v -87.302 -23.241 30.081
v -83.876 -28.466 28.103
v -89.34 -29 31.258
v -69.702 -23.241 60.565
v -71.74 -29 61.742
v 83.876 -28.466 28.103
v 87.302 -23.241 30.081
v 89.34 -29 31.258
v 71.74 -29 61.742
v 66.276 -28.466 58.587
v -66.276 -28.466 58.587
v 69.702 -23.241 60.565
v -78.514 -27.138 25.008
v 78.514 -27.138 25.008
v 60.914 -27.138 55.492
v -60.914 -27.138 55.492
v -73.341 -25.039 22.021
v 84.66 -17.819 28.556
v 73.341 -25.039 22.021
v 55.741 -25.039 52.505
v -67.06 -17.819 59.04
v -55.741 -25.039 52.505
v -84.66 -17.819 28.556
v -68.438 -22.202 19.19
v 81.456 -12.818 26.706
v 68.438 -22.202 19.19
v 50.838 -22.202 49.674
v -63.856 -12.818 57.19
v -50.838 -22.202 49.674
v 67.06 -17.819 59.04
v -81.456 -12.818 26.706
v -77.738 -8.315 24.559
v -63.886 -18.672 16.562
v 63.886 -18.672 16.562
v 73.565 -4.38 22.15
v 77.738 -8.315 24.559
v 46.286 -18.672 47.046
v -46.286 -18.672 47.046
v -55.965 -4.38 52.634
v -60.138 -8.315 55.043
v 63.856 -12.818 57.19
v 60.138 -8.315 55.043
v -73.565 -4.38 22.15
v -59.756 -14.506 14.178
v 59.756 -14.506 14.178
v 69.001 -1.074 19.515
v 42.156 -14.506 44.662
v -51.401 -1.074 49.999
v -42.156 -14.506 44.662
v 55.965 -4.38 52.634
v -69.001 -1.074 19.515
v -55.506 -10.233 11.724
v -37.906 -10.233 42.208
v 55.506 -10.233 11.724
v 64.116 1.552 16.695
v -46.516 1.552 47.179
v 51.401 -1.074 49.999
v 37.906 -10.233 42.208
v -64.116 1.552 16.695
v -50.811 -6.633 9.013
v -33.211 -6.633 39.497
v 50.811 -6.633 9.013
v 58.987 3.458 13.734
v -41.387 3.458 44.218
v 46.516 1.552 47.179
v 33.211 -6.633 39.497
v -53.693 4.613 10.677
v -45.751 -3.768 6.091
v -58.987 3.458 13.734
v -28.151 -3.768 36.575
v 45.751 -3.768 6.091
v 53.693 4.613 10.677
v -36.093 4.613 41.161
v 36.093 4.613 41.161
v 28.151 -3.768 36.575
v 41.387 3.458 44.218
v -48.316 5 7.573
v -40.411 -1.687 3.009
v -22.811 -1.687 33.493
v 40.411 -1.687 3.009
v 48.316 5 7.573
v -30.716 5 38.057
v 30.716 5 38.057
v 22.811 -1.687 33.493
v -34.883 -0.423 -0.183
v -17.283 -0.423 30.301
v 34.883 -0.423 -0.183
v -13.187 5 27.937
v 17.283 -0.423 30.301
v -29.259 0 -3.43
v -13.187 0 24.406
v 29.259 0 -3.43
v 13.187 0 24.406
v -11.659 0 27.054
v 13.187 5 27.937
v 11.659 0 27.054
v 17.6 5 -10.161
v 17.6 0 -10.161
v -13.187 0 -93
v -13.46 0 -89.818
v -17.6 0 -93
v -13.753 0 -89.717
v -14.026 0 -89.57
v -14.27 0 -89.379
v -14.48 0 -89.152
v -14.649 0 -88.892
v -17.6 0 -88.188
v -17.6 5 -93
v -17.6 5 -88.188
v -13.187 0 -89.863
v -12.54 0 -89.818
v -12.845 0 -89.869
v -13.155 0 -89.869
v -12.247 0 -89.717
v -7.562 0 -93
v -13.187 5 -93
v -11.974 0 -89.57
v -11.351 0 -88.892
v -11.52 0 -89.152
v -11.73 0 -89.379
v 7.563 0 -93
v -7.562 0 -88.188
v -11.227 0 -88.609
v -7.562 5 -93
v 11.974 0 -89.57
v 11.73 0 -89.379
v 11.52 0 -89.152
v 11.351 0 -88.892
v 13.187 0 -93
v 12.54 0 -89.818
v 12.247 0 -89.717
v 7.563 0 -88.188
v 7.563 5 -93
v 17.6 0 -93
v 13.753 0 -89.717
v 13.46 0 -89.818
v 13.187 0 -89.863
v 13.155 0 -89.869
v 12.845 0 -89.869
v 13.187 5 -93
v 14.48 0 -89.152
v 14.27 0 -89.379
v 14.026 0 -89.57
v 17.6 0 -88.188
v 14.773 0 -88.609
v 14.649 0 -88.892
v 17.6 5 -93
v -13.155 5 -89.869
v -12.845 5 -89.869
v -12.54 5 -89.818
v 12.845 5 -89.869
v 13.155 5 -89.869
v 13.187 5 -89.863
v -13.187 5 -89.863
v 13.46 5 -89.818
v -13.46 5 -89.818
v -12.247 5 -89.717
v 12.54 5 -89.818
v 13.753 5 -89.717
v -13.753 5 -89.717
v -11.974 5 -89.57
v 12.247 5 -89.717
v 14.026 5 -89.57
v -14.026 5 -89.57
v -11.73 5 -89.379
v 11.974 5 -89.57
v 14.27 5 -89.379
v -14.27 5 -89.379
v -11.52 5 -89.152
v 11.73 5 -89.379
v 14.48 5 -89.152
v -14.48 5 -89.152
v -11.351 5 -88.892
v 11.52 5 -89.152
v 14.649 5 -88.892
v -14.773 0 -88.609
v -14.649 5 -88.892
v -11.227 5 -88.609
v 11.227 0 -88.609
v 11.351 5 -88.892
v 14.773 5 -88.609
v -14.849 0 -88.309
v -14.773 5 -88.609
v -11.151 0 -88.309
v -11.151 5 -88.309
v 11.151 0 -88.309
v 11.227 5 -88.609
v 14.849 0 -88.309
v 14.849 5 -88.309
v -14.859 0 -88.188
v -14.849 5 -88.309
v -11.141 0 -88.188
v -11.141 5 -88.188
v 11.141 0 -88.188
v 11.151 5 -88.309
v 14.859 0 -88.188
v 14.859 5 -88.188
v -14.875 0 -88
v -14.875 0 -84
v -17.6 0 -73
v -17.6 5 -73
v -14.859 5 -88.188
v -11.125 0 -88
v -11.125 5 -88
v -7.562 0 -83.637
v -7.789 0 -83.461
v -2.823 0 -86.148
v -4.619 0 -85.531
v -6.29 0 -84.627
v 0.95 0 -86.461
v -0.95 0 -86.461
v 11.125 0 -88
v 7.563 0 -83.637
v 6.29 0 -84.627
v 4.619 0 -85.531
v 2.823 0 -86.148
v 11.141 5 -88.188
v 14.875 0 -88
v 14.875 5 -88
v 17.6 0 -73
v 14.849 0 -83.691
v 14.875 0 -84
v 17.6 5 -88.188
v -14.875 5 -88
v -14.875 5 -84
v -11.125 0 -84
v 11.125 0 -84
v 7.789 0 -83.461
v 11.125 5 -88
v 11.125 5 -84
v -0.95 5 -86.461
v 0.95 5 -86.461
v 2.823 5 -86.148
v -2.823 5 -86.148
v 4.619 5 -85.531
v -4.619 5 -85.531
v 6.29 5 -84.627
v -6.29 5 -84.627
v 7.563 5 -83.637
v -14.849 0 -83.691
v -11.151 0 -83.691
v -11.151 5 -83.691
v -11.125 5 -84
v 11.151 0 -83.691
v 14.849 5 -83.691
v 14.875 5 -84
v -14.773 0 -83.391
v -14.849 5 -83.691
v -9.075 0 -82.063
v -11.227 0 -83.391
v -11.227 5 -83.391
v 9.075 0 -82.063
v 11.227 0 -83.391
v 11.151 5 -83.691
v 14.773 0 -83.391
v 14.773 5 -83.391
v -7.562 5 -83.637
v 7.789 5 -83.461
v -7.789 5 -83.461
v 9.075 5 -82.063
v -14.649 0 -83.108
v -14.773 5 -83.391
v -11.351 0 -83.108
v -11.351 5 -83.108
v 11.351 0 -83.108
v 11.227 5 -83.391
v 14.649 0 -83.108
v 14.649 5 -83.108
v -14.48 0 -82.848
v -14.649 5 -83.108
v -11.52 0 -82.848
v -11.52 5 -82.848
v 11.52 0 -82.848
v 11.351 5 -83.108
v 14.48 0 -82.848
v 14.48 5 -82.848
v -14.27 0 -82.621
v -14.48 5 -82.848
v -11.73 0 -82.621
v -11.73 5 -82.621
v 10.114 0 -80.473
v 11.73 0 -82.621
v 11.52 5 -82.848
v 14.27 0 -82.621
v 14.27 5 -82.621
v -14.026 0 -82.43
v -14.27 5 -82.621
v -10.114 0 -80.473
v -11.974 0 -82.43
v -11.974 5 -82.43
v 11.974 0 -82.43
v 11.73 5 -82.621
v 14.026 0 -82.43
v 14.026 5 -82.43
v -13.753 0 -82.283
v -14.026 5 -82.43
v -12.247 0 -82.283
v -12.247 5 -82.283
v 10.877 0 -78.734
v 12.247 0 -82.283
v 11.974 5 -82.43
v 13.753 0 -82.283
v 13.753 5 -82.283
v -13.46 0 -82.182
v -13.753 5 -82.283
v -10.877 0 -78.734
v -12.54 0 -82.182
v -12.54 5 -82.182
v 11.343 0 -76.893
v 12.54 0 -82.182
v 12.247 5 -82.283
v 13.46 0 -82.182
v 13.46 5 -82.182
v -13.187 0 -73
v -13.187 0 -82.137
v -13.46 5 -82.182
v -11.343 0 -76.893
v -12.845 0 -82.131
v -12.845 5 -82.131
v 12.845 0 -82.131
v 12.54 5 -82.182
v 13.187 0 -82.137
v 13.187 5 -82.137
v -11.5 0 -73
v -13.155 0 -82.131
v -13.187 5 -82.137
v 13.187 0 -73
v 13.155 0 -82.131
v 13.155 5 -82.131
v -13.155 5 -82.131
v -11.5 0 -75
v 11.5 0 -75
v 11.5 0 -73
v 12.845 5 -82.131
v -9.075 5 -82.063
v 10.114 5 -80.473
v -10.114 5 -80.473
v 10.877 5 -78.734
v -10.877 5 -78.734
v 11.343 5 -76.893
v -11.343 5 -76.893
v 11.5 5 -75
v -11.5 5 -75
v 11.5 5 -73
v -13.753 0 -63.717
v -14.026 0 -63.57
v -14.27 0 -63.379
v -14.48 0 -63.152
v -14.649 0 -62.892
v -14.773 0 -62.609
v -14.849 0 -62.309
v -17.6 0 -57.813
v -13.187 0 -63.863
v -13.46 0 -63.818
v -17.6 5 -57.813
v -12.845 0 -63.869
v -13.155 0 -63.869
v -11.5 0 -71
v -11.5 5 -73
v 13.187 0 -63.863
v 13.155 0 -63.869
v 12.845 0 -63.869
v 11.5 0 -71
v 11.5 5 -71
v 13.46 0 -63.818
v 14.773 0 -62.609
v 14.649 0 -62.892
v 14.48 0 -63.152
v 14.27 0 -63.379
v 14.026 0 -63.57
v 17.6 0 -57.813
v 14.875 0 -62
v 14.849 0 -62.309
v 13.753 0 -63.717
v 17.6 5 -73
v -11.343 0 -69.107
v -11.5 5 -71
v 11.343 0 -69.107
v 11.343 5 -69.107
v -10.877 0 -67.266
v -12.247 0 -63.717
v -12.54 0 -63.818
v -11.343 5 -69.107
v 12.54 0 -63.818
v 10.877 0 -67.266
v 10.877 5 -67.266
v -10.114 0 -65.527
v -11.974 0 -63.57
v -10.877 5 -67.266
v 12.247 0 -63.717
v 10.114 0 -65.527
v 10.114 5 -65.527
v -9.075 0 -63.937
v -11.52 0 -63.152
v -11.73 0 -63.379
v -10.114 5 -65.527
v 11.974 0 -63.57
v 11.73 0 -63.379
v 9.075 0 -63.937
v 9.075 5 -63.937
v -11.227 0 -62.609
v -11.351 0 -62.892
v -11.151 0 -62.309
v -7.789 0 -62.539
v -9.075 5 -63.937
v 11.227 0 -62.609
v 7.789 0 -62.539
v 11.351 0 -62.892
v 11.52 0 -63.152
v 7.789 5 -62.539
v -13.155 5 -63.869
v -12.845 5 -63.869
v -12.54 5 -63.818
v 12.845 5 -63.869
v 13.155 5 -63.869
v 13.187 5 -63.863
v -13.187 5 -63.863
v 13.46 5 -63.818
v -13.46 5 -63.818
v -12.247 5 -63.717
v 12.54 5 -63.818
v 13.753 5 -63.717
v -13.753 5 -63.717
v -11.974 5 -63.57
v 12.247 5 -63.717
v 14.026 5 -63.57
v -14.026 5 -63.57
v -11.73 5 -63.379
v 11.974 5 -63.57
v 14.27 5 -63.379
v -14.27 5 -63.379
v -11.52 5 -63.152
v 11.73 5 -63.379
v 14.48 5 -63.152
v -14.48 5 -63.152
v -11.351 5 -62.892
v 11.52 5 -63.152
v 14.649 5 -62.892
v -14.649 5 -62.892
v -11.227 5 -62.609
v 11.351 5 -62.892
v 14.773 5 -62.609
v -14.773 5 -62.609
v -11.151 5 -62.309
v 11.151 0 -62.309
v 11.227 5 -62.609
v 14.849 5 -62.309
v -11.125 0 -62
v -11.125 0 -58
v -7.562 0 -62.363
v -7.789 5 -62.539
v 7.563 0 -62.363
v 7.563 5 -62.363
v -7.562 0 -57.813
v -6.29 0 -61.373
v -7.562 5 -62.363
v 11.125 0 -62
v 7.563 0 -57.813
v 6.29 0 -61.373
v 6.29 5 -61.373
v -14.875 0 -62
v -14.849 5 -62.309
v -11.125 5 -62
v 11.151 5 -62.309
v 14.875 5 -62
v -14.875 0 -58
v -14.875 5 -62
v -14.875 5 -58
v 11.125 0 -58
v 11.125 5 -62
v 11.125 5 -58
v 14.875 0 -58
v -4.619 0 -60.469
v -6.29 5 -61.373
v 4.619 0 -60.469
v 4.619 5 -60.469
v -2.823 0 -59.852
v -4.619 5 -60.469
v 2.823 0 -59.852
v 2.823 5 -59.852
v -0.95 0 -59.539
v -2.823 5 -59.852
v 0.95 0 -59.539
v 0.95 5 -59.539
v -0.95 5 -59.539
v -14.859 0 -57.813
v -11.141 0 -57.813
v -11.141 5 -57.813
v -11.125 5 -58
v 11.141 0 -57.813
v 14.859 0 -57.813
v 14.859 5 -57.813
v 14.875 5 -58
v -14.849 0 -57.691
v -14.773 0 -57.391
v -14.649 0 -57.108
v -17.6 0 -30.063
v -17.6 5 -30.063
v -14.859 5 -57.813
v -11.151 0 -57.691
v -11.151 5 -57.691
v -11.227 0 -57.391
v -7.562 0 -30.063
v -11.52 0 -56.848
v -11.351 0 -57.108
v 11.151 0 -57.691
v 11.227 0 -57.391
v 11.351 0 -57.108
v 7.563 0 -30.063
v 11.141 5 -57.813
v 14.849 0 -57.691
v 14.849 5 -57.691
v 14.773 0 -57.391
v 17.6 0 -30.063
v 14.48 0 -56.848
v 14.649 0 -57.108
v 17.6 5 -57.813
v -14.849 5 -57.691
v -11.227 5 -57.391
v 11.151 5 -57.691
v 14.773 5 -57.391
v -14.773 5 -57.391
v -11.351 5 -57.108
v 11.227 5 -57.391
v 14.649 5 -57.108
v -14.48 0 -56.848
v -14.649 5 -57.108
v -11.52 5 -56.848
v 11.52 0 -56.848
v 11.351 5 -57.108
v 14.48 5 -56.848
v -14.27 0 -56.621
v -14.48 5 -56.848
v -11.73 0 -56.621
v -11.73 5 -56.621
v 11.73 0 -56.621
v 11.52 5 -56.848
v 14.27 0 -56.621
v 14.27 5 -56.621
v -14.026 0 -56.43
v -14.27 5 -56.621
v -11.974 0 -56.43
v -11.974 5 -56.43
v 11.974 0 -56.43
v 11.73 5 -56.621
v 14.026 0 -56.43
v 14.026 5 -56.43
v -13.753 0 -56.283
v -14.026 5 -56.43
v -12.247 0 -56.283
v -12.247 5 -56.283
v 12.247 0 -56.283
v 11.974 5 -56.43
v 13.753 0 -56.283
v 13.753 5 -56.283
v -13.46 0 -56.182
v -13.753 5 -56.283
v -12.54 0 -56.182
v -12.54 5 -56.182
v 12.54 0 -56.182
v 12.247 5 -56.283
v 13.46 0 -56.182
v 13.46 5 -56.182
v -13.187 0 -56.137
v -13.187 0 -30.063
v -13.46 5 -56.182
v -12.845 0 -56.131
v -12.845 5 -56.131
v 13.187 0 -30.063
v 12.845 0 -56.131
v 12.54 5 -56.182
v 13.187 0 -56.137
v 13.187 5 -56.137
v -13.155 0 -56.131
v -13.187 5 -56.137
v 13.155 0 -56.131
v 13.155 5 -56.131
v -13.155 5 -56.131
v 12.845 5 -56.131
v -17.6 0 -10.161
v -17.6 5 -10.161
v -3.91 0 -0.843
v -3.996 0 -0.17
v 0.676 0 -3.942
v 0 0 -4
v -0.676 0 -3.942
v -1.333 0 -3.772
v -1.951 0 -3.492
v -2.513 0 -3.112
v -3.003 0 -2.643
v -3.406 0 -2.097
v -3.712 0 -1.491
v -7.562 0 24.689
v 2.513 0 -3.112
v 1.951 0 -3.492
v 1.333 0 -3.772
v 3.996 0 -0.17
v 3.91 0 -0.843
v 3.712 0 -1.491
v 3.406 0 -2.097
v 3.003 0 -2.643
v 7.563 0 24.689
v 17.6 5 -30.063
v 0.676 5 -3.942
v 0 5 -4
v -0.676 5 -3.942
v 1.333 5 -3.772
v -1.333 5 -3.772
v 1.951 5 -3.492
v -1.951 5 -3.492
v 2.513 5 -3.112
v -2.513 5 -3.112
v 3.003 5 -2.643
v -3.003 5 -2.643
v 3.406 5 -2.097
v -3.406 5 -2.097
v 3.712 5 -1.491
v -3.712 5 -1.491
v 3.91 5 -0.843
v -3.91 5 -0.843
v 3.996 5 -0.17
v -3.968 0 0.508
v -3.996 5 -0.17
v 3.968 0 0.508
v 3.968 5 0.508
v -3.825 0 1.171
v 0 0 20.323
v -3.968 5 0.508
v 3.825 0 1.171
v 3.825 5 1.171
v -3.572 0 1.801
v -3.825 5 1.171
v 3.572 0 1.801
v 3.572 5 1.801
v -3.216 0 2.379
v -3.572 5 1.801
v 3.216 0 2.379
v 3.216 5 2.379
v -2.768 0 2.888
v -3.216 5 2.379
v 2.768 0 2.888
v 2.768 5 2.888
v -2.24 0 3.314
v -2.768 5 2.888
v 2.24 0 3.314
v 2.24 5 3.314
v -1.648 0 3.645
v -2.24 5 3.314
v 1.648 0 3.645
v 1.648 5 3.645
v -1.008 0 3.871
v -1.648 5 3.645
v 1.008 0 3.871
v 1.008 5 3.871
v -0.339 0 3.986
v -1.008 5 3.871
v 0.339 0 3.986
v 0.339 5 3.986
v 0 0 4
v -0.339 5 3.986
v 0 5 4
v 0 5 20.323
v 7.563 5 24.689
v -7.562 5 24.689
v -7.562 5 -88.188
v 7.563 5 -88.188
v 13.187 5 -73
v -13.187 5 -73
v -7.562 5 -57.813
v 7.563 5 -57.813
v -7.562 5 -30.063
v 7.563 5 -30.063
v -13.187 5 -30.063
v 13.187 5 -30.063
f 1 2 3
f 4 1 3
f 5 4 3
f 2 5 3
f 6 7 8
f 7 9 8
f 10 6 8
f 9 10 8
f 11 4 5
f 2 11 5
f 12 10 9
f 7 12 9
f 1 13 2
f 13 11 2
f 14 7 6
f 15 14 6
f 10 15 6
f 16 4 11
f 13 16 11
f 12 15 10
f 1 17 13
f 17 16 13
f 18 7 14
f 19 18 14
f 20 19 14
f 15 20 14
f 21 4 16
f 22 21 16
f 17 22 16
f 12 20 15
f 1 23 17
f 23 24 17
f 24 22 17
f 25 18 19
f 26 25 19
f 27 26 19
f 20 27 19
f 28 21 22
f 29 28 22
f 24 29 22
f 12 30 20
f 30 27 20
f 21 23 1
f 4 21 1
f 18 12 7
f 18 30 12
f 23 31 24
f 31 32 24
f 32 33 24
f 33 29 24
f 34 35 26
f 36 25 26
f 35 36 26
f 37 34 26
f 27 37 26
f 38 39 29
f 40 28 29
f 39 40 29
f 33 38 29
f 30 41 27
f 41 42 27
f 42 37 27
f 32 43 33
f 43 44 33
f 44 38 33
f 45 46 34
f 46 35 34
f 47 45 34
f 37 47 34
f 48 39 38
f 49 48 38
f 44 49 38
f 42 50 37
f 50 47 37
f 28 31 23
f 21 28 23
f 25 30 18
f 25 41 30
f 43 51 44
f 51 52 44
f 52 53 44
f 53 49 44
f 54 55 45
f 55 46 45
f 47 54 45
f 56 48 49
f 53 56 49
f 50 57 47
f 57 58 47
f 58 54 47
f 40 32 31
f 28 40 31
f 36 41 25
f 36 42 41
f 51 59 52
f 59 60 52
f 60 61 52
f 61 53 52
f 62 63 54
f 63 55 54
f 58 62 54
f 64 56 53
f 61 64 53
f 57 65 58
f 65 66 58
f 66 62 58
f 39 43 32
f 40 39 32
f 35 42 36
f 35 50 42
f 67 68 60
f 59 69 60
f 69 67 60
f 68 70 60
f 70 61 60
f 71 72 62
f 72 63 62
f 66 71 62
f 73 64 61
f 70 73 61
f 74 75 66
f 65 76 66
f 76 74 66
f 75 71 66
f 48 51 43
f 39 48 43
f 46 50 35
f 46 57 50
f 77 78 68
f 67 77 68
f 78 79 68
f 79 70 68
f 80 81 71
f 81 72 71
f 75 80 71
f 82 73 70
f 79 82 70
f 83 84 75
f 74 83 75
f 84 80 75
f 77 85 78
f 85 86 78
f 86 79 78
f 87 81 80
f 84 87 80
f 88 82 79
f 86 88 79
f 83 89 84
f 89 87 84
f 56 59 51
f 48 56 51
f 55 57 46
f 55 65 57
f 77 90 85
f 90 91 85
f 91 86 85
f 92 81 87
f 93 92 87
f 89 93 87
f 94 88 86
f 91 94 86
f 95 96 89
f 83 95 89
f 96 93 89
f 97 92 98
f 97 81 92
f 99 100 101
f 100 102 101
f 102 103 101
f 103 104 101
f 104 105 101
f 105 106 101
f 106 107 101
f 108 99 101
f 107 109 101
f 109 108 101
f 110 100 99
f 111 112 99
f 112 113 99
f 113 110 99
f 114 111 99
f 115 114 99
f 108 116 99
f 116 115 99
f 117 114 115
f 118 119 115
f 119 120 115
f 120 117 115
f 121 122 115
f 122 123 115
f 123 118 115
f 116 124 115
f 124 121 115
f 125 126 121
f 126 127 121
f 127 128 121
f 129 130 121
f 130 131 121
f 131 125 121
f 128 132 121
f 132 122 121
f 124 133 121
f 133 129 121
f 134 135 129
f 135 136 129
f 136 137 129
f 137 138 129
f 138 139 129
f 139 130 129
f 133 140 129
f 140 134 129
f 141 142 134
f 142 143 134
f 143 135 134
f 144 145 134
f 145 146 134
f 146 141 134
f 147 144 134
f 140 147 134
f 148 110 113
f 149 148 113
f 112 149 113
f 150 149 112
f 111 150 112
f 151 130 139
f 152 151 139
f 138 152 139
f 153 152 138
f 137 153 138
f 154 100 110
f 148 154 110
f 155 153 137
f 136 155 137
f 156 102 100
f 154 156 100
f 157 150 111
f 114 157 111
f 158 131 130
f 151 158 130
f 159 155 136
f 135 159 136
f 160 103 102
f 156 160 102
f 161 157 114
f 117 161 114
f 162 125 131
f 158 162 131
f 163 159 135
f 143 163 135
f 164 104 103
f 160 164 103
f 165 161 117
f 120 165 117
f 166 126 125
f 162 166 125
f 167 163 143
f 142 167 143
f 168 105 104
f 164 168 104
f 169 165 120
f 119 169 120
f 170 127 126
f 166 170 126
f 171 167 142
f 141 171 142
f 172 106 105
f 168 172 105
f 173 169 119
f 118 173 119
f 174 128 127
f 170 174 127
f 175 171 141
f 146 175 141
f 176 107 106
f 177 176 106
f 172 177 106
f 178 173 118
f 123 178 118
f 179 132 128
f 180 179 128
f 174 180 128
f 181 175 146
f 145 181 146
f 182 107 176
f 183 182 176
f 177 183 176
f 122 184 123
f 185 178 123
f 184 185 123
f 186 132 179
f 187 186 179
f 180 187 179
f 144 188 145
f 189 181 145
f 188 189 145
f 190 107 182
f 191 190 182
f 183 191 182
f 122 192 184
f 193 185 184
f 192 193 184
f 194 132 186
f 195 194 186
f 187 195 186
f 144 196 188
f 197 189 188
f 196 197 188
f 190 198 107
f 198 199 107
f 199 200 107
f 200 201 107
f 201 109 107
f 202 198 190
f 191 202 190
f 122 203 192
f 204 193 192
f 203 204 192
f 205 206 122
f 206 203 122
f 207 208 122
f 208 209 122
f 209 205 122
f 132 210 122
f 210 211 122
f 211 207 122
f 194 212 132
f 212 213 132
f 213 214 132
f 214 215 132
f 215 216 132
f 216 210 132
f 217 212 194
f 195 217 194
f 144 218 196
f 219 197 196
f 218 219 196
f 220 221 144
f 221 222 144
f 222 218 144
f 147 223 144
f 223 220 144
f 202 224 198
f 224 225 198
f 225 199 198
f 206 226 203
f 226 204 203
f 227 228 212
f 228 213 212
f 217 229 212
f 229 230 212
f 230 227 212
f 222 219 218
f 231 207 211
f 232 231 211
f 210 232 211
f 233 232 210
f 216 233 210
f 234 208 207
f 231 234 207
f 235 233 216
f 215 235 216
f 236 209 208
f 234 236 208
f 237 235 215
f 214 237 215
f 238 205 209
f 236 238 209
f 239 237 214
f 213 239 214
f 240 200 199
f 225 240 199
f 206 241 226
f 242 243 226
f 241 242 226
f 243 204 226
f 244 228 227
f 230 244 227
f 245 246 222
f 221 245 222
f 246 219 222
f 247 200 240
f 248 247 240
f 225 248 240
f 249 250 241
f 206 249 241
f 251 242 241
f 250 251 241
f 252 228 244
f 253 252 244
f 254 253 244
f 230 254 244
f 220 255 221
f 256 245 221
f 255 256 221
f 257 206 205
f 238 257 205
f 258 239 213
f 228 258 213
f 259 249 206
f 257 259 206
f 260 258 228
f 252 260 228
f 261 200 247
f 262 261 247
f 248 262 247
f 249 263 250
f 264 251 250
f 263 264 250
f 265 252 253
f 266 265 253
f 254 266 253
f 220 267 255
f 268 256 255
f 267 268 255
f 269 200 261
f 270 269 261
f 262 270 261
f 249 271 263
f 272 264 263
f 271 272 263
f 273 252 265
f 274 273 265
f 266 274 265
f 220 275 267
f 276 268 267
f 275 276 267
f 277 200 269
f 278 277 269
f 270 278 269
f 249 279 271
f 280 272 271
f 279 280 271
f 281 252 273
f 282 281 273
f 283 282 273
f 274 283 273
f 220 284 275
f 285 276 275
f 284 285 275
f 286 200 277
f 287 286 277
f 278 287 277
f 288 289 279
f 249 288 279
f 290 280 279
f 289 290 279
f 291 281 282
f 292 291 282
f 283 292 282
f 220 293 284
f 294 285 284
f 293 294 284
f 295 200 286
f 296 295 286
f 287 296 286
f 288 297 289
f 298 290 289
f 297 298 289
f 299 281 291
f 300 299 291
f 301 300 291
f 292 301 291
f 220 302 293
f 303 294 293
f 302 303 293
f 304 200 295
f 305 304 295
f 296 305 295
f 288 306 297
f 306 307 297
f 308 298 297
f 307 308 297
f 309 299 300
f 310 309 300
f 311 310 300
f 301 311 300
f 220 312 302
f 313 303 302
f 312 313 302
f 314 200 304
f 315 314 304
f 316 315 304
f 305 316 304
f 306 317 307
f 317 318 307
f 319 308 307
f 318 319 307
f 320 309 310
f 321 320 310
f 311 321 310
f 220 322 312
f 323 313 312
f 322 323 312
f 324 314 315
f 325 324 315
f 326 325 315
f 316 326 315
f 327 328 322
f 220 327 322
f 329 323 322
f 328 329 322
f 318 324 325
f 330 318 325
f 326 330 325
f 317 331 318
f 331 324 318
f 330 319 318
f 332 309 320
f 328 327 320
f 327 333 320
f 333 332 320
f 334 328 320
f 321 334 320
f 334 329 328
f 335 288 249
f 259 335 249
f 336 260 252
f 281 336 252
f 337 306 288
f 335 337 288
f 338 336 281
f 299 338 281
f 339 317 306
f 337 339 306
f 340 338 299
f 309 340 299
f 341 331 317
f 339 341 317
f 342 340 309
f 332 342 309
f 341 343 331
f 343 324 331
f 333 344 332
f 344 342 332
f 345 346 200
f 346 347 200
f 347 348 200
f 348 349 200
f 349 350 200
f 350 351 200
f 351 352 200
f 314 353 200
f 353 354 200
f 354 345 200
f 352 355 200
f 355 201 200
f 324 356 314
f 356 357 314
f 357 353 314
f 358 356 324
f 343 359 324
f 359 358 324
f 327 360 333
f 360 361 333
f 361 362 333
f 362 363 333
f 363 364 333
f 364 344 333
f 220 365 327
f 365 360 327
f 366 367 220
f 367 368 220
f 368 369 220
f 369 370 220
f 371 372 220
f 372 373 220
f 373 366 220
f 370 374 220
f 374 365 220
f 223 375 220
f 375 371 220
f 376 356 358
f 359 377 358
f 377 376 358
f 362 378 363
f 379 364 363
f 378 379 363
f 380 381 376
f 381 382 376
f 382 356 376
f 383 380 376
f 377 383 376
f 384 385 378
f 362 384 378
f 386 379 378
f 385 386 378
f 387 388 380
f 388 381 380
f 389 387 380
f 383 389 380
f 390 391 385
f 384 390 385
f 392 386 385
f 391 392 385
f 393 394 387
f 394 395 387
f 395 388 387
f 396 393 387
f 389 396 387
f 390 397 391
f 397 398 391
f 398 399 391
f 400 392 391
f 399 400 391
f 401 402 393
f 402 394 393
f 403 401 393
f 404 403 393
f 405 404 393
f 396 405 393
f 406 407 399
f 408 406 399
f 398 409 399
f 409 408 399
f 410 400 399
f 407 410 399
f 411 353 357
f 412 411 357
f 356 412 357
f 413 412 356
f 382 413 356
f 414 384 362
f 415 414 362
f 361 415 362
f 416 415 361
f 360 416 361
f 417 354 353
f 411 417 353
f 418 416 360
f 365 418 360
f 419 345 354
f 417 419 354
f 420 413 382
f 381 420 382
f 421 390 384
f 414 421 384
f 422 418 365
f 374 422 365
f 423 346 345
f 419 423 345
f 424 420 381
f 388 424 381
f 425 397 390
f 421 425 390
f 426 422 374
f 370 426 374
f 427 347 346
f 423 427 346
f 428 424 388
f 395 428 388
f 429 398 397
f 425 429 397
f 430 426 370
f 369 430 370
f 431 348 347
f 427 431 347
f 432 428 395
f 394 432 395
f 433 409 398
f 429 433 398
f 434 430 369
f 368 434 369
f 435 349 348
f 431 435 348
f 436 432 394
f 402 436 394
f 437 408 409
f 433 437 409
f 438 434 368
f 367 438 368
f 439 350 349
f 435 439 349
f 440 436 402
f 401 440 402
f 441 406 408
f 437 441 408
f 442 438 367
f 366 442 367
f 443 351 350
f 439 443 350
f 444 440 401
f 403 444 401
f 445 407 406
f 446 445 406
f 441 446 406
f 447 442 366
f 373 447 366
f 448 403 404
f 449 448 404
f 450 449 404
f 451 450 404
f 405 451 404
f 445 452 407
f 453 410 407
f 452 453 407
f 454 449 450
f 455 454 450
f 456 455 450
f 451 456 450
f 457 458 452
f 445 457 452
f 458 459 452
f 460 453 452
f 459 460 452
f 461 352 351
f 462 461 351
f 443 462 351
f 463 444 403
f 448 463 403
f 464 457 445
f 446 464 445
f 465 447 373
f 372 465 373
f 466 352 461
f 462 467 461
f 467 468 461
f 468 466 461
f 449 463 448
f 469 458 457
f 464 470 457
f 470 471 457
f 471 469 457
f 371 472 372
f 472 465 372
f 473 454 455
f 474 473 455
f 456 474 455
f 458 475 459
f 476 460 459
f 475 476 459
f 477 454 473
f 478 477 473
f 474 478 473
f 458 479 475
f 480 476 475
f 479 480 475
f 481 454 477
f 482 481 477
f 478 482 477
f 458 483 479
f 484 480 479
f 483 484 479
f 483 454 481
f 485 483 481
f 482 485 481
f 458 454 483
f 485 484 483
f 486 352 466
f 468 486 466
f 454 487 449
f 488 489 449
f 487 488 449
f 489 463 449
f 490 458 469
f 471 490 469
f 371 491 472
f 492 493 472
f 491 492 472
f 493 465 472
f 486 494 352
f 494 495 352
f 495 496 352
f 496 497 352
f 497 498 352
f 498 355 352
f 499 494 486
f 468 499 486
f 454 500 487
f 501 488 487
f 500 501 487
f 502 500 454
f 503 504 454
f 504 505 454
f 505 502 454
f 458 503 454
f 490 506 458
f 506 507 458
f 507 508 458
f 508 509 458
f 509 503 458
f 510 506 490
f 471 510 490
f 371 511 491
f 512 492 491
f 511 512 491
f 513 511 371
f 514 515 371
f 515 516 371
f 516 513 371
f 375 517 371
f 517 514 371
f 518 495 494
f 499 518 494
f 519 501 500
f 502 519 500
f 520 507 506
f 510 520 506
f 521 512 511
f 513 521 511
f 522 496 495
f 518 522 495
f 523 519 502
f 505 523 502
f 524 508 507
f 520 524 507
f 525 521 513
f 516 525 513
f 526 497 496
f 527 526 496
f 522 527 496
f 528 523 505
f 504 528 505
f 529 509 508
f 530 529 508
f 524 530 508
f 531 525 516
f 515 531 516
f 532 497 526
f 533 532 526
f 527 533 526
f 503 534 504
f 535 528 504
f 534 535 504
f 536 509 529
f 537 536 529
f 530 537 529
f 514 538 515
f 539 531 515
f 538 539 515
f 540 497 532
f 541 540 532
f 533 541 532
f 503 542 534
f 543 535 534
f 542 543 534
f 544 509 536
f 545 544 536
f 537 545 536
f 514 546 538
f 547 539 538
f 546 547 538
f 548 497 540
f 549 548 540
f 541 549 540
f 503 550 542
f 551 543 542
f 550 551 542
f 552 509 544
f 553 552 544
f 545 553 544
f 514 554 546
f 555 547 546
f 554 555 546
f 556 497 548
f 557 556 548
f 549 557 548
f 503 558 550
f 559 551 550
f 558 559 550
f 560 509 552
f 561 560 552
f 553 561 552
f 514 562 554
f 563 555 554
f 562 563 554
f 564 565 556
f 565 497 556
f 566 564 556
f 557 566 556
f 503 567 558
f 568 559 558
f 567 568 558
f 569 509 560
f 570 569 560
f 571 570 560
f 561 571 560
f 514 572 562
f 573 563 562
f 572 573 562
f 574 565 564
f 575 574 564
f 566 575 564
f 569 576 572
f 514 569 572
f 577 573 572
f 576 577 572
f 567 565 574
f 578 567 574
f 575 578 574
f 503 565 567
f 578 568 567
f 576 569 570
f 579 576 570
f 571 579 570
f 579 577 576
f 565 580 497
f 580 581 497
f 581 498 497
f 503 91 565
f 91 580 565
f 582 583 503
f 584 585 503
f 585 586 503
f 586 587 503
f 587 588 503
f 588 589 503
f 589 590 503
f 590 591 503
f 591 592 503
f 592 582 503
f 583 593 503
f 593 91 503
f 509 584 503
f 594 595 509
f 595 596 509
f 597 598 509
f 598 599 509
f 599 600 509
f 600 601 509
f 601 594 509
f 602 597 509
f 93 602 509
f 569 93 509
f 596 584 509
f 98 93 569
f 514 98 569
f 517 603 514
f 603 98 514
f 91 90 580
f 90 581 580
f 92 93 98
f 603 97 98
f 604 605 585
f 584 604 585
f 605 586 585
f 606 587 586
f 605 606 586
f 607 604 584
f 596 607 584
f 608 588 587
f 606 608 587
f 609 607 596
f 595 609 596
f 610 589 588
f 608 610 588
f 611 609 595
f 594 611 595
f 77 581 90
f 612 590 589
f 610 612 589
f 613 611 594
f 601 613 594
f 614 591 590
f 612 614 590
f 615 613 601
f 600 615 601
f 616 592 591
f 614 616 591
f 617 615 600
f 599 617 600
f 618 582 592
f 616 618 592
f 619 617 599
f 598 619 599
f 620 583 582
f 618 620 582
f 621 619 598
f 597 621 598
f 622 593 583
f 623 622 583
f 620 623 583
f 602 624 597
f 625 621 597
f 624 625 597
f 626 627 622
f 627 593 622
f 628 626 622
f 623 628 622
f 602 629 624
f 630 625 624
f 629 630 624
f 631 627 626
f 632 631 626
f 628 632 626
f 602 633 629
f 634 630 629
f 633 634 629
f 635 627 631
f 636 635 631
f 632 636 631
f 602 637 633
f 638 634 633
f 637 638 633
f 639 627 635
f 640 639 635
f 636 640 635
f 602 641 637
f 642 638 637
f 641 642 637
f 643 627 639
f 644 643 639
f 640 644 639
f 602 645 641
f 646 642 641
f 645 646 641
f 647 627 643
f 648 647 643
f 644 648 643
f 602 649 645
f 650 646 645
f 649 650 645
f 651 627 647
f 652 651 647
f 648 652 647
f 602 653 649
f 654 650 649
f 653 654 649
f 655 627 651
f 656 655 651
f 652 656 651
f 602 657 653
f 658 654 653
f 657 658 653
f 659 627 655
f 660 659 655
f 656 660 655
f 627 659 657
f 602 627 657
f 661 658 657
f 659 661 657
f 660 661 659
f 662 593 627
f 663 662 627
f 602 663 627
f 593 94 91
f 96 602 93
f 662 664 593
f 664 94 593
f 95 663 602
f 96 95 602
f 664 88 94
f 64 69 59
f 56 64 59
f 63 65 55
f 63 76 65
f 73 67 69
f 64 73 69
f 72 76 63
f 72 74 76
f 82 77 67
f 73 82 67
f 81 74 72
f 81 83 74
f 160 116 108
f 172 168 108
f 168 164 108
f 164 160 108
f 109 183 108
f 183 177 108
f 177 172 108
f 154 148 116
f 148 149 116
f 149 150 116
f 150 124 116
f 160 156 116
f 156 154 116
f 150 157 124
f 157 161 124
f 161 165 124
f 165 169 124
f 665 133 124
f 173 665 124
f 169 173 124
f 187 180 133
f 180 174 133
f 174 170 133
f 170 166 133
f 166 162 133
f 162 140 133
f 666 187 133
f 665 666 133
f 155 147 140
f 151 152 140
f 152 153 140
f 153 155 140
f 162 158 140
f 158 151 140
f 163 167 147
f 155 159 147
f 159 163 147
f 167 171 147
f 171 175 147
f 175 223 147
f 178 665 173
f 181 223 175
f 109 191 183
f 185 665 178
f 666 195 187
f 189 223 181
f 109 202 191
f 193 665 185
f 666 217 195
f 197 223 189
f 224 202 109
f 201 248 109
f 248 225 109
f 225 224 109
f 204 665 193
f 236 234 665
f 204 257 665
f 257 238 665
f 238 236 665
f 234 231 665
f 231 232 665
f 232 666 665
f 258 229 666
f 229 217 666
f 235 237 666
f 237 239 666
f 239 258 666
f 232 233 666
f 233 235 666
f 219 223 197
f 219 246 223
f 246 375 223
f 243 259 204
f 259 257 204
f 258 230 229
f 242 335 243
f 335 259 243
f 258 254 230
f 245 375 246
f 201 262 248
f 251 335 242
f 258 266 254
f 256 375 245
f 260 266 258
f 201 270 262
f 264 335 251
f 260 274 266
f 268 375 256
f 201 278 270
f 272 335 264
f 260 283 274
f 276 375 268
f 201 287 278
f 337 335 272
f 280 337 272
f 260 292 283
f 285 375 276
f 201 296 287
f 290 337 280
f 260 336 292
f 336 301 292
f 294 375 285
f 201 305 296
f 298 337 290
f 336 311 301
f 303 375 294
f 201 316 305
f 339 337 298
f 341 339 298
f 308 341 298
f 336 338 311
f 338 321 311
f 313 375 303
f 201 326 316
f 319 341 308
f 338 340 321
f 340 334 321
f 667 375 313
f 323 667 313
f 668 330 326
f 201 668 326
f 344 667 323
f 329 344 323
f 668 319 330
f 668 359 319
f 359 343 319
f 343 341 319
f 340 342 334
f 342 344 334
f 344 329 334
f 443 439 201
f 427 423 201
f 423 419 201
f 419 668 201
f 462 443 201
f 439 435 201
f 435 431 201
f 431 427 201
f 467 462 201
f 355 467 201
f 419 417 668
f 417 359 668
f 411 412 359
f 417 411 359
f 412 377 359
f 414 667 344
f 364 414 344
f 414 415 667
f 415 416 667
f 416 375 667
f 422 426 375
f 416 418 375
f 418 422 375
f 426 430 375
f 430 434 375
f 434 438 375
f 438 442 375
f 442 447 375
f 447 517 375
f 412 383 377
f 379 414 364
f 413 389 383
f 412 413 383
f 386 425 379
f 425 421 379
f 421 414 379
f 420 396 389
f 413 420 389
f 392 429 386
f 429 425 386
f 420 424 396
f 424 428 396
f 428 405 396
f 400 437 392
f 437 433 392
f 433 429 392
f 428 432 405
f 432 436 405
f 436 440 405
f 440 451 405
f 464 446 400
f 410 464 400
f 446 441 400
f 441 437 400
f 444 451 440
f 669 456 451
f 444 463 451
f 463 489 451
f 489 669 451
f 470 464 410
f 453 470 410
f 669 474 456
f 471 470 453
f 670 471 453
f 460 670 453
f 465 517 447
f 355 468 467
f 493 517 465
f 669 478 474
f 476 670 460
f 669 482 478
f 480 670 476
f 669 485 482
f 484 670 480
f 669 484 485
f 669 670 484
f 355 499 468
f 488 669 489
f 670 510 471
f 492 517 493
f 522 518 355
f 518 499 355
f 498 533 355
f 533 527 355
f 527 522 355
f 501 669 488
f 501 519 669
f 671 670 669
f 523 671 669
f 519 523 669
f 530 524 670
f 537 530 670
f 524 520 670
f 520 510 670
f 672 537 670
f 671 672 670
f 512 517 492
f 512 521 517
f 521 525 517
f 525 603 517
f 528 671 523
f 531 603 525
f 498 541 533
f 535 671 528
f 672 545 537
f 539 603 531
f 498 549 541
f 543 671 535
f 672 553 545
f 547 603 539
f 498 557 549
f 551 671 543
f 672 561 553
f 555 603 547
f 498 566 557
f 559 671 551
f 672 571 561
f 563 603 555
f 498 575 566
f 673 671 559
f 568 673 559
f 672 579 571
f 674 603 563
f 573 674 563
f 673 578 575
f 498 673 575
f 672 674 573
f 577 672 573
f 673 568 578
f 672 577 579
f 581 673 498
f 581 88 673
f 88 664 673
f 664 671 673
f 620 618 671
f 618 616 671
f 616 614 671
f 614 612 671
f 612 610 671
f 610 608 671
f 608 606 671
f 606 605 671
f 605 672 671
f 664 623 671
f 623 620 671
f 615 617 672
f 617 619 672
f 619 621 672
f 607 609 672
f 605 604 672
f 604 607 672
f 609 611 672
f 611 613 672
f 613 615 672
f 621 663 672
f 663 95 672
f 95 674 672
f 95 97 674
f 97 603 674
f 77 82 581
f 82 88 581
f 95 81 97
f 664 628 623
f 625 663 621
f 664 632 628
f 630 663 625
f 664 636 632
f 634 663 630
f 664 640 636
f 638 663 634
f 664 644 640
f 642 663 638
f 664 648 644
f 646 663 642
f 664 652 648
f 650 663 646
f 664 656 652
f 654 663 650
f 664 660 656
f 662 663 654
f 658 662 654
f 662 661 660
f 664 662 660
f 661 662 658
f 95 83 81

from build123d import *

# Parameters (mm, degrees)
SKETCH1_R           = 4
BOSS_EXTRUDE1_DEPTH = 5
BOSS_EXTRUDE2_DEPTH = 29
FILLET1_R           = 50
FILLET2_R           = 50


with BuildPart() as part:
    # Sketch1 → Boss-Extrude1 (new body)
    with BuildSketch(Plane(origin=(0, 0, 0), x_dir=(1, 0, 0), z_dir=(0, 1, 0))):
        Polygon((-17.6, 10.161364738), (-17.6, 93), (17.6, 93), (17.6, 10.161364738), (89.340362552, -31.257952893), (71.740362552, -61.742047107), (0, -20.322729475), (-71.740362552, -61.742047107), (-89.340362552, -31.257952893), align=None)
        with Locations(Location((0, 0, 0), (0, 0, 270))):
            Circle(SKETCH1_R, mode=Mode.SUBTRACT)
        with BuildLine():
            Line((-11.5, 75), (-11.5, 71))
            ThreePointArc((-11.5, 71), (0, 59.5), (11.5, 71))
            Line((11.5, 71), (11.5, 75))
            ThreePointArc((11.5, 75), (0, 86.5), (-11.5, 75))
        make_face(mode=Mode.SUBTRACT)
        with BuildLine():
            Line((-14.875, 88), (-14.875, 84))
            ThreePointArc((-14.875, 84), (-13, 82.125), (-11.125, 84))
            Line((-11.125, 84), (-11.125, 88))
            ThreePointArc((-11.125, 88), (-13, 89.875), (-14.875, 88))
        make_face(mode=Mode.SUBTRACT)
        with BuildLine():
            Line((11.125, 88), (11.125, 84))
            ThreePointArc((11.125, 84), (13, 82.125), (14.875, 84))
            Line((14.875, 84), (14.875, 88))
            ThreePointArc((14.875, 88), (13, 89.875), (11.125, 88))
        make_face(mode=Mode.SUBTRACT)
        with BuildLine():
            Line((11.125, 62), (11.125, 58))
            ThreePointArc((11.125, 58), (13, 56.125), (14.875, 58))
            Line((14.875, 58), (14.875, 62))
            ThreePointArc((14.875, 62), (13, 63.875), (11.125, 62))
        make_face(mode=Mode.SUBTRACT)
        with BuildLine():
            Line((-14.875, 62), (-14.875, 58))
            ThreePointArc((-14.875, 58), (-13, 56.125), (-11.125, 58))
            Line((-11.125, 58), (-11.125, 62))
            ThreePointArc((-11.125, 62), (-13, 63.875), (-14.875, 62))
        make_face(mode=Mode.SUBTRACT)
    extrude(amount=BOSS_EXTRUDE1_DEPTH)

    # Sketch2 → Boss-Extrude2 (add)
    with BuildSketch(Plane.XZ):
        Polygon((-71.740362552, 61.742047107), (-89.340362552, 31.257952893), (-68.555752861, 19.257952893), (-50.955752861, 49.742047107), align=None)
        Polygon((71.740362552, 61.742047107), (89.340362552, 31.257952893), (68.555752861, 19.257952893), (50.955752861, 49.742047107), align=None)
    extrude(amount=BOSS_EXTRUDE2_DEPTH)

    # Fillet1
    # the kernel refuses this fillet: 50 mm, written as the material it adds along each edge
    with BuildSketch(Plane(origin=(-68.555752861, 0, 19.257952893), x_dir=(0, -1, 0), z_dir=(0.4999999999999999, 0, 0.8660254037844387))) as fillet1_piece_1:
        with BuildLine():
            CenterArc((50, 45.376205218), FILLET1_R, 180, 65.16541251)
            Line((0, 45.376205218), (-1, 45.376205218))
            Line((-1, 45.376205218), (-1, 0))
            Line((-1, 0), (0, -1))
            ThreePointArc((0, -1), (14.5, -1), (28.58, -0.907524104))
            Line((28.58, -0.907524104), (29, 0))
        make_face()
    extrude(amount=35.2)
    with BuildSketch(Plane(origin=(68.555752861, 0, 19.257952893), x_dir=(0, -1, 0), z_dir=(-0.49999999999999983, 0, 0.8660254037844388))) as fillet1_piece_2:
        with BuildLine():
            CenterArc((50, -45.376205218), FILLET1_R, 114.83458749, 65.16541251)
            Line((0, -45.376205218), (-1, -45.376205218))
            Line((-1, -45.376205218), (-1, 0))
            Line((-1, 0), (0, 1))
            ThreePointArc((0, 1), (14.5, 1), (28.58, 0.907524104))
            Line((28.58, 0.907524104), (29, 0))
        make_face()
    extrude(amount=35.2)
    # the kernel refuses this fillet: 50 mm, written as the material it takes off along each edge
    with BuildSketch(Plane(origin=(148.553958964, 5, -71.30300459), x_dir=(-0.8660254037844363, 0, -0.5000000000000039), z_dir=(-0.5000000000000039, 0, 0.8660254037844364)), Plane(origin=(-12.52676614, 5, 164.30300459), x_dir=(0.8660254037844429, 0, -0.4999999999999925), z_dir=(-0.49999999999999256, 0, -0.866025403784443))) as fillet1_2_piece_1:
        with BuildLine():
            CenterArc((47.370877129, 50), FILLET1_R, 198.662924885, 71.337075115)
            Line((0, 34), (-0.947417543, 33.68))
            ThreePointArc((-0.947417543, 33.68), (-1, 17), (-1, 0))
            Line((-1, 0), (0, -1))
            Line((0, -1), (47.370877129, -1))
            Line((47.370877129, -1), (47.370877129, 0))
        make_face()
    extrude(amount=272.054385647, mode=Mode.SUBTRACT)

    # Fillet2
    # the kernel refuses this fillet: 50 mm, written as the material it takes off along each edge
    with BuildSketch(Plane(origin=(-98.555752861, -29, -32.703571334), x_dir=(0.49710588531055566, 0.8188493868753551, -0.2870042166997965), z_dir=(0.4999999999999999, 0, 0.8660254037844387))) as fillet2_piece_1:
        with BuildLine():
            CenterArc((26.55146204, 49.210454923), FILLET2_R, 216.239467537, 43.564898237)
            Line((-13.776202402, 19.652385285), (-14.58275569, 19.061223892))
            ThreePointArc((-14.58275569, 19.061223892), (-7.706950588, 9.252184209), (-0.818849387, -0.574008433))
            Line((-0.818849387, -0.574008433), (0.177009747, -0.984209098))
            ThreePointArc((0.177009747, -0.984209098), (8.850487347, -0.210454923), (17.523964946, -0.984209098))
            Line((17.523964946, -0.984209098), (17.700974693, 0))
        make_face()
    extrude(amount=155.2, mode=Mode.SUBTRACT)
    with BuildSketch(Plane(origin=(98.555752861, -29, -32.703571334), x_dir=(-0.4971058853105562, 0.8188493868753546, -0.2870042166997967), z_dir=(-0.49999999999999983, 0, 0.8660254037844388))) as fillet2_piece_2:
        with BuildLine():
            CenterArc((26.55146204, -49.210454923), FILLET2_R, 100.195634226, 43.564898237)
            Line((-13.776202402, -19.652385285), (-14.58275569, -19.061223892))
            ThreePointArc((-14.58275569, -19.061223892), (-7.706950588, -9.252184209), (-0.818849387, 0.574008433))
            Line((-0.818849387, 0.574008433), (0.177009747, 0.984209098))
            ThreePointArc((0.177009747, 0.984209098), (8.850487347, 0.210454923), (17.523964946, 0.984209098))
            Line((17.523964946, 0.984209098), (17.700974693, 0))
        make_face()
    extrude(amount=155.2, mode=Mode.SUBTRACT)


solid = part.part
